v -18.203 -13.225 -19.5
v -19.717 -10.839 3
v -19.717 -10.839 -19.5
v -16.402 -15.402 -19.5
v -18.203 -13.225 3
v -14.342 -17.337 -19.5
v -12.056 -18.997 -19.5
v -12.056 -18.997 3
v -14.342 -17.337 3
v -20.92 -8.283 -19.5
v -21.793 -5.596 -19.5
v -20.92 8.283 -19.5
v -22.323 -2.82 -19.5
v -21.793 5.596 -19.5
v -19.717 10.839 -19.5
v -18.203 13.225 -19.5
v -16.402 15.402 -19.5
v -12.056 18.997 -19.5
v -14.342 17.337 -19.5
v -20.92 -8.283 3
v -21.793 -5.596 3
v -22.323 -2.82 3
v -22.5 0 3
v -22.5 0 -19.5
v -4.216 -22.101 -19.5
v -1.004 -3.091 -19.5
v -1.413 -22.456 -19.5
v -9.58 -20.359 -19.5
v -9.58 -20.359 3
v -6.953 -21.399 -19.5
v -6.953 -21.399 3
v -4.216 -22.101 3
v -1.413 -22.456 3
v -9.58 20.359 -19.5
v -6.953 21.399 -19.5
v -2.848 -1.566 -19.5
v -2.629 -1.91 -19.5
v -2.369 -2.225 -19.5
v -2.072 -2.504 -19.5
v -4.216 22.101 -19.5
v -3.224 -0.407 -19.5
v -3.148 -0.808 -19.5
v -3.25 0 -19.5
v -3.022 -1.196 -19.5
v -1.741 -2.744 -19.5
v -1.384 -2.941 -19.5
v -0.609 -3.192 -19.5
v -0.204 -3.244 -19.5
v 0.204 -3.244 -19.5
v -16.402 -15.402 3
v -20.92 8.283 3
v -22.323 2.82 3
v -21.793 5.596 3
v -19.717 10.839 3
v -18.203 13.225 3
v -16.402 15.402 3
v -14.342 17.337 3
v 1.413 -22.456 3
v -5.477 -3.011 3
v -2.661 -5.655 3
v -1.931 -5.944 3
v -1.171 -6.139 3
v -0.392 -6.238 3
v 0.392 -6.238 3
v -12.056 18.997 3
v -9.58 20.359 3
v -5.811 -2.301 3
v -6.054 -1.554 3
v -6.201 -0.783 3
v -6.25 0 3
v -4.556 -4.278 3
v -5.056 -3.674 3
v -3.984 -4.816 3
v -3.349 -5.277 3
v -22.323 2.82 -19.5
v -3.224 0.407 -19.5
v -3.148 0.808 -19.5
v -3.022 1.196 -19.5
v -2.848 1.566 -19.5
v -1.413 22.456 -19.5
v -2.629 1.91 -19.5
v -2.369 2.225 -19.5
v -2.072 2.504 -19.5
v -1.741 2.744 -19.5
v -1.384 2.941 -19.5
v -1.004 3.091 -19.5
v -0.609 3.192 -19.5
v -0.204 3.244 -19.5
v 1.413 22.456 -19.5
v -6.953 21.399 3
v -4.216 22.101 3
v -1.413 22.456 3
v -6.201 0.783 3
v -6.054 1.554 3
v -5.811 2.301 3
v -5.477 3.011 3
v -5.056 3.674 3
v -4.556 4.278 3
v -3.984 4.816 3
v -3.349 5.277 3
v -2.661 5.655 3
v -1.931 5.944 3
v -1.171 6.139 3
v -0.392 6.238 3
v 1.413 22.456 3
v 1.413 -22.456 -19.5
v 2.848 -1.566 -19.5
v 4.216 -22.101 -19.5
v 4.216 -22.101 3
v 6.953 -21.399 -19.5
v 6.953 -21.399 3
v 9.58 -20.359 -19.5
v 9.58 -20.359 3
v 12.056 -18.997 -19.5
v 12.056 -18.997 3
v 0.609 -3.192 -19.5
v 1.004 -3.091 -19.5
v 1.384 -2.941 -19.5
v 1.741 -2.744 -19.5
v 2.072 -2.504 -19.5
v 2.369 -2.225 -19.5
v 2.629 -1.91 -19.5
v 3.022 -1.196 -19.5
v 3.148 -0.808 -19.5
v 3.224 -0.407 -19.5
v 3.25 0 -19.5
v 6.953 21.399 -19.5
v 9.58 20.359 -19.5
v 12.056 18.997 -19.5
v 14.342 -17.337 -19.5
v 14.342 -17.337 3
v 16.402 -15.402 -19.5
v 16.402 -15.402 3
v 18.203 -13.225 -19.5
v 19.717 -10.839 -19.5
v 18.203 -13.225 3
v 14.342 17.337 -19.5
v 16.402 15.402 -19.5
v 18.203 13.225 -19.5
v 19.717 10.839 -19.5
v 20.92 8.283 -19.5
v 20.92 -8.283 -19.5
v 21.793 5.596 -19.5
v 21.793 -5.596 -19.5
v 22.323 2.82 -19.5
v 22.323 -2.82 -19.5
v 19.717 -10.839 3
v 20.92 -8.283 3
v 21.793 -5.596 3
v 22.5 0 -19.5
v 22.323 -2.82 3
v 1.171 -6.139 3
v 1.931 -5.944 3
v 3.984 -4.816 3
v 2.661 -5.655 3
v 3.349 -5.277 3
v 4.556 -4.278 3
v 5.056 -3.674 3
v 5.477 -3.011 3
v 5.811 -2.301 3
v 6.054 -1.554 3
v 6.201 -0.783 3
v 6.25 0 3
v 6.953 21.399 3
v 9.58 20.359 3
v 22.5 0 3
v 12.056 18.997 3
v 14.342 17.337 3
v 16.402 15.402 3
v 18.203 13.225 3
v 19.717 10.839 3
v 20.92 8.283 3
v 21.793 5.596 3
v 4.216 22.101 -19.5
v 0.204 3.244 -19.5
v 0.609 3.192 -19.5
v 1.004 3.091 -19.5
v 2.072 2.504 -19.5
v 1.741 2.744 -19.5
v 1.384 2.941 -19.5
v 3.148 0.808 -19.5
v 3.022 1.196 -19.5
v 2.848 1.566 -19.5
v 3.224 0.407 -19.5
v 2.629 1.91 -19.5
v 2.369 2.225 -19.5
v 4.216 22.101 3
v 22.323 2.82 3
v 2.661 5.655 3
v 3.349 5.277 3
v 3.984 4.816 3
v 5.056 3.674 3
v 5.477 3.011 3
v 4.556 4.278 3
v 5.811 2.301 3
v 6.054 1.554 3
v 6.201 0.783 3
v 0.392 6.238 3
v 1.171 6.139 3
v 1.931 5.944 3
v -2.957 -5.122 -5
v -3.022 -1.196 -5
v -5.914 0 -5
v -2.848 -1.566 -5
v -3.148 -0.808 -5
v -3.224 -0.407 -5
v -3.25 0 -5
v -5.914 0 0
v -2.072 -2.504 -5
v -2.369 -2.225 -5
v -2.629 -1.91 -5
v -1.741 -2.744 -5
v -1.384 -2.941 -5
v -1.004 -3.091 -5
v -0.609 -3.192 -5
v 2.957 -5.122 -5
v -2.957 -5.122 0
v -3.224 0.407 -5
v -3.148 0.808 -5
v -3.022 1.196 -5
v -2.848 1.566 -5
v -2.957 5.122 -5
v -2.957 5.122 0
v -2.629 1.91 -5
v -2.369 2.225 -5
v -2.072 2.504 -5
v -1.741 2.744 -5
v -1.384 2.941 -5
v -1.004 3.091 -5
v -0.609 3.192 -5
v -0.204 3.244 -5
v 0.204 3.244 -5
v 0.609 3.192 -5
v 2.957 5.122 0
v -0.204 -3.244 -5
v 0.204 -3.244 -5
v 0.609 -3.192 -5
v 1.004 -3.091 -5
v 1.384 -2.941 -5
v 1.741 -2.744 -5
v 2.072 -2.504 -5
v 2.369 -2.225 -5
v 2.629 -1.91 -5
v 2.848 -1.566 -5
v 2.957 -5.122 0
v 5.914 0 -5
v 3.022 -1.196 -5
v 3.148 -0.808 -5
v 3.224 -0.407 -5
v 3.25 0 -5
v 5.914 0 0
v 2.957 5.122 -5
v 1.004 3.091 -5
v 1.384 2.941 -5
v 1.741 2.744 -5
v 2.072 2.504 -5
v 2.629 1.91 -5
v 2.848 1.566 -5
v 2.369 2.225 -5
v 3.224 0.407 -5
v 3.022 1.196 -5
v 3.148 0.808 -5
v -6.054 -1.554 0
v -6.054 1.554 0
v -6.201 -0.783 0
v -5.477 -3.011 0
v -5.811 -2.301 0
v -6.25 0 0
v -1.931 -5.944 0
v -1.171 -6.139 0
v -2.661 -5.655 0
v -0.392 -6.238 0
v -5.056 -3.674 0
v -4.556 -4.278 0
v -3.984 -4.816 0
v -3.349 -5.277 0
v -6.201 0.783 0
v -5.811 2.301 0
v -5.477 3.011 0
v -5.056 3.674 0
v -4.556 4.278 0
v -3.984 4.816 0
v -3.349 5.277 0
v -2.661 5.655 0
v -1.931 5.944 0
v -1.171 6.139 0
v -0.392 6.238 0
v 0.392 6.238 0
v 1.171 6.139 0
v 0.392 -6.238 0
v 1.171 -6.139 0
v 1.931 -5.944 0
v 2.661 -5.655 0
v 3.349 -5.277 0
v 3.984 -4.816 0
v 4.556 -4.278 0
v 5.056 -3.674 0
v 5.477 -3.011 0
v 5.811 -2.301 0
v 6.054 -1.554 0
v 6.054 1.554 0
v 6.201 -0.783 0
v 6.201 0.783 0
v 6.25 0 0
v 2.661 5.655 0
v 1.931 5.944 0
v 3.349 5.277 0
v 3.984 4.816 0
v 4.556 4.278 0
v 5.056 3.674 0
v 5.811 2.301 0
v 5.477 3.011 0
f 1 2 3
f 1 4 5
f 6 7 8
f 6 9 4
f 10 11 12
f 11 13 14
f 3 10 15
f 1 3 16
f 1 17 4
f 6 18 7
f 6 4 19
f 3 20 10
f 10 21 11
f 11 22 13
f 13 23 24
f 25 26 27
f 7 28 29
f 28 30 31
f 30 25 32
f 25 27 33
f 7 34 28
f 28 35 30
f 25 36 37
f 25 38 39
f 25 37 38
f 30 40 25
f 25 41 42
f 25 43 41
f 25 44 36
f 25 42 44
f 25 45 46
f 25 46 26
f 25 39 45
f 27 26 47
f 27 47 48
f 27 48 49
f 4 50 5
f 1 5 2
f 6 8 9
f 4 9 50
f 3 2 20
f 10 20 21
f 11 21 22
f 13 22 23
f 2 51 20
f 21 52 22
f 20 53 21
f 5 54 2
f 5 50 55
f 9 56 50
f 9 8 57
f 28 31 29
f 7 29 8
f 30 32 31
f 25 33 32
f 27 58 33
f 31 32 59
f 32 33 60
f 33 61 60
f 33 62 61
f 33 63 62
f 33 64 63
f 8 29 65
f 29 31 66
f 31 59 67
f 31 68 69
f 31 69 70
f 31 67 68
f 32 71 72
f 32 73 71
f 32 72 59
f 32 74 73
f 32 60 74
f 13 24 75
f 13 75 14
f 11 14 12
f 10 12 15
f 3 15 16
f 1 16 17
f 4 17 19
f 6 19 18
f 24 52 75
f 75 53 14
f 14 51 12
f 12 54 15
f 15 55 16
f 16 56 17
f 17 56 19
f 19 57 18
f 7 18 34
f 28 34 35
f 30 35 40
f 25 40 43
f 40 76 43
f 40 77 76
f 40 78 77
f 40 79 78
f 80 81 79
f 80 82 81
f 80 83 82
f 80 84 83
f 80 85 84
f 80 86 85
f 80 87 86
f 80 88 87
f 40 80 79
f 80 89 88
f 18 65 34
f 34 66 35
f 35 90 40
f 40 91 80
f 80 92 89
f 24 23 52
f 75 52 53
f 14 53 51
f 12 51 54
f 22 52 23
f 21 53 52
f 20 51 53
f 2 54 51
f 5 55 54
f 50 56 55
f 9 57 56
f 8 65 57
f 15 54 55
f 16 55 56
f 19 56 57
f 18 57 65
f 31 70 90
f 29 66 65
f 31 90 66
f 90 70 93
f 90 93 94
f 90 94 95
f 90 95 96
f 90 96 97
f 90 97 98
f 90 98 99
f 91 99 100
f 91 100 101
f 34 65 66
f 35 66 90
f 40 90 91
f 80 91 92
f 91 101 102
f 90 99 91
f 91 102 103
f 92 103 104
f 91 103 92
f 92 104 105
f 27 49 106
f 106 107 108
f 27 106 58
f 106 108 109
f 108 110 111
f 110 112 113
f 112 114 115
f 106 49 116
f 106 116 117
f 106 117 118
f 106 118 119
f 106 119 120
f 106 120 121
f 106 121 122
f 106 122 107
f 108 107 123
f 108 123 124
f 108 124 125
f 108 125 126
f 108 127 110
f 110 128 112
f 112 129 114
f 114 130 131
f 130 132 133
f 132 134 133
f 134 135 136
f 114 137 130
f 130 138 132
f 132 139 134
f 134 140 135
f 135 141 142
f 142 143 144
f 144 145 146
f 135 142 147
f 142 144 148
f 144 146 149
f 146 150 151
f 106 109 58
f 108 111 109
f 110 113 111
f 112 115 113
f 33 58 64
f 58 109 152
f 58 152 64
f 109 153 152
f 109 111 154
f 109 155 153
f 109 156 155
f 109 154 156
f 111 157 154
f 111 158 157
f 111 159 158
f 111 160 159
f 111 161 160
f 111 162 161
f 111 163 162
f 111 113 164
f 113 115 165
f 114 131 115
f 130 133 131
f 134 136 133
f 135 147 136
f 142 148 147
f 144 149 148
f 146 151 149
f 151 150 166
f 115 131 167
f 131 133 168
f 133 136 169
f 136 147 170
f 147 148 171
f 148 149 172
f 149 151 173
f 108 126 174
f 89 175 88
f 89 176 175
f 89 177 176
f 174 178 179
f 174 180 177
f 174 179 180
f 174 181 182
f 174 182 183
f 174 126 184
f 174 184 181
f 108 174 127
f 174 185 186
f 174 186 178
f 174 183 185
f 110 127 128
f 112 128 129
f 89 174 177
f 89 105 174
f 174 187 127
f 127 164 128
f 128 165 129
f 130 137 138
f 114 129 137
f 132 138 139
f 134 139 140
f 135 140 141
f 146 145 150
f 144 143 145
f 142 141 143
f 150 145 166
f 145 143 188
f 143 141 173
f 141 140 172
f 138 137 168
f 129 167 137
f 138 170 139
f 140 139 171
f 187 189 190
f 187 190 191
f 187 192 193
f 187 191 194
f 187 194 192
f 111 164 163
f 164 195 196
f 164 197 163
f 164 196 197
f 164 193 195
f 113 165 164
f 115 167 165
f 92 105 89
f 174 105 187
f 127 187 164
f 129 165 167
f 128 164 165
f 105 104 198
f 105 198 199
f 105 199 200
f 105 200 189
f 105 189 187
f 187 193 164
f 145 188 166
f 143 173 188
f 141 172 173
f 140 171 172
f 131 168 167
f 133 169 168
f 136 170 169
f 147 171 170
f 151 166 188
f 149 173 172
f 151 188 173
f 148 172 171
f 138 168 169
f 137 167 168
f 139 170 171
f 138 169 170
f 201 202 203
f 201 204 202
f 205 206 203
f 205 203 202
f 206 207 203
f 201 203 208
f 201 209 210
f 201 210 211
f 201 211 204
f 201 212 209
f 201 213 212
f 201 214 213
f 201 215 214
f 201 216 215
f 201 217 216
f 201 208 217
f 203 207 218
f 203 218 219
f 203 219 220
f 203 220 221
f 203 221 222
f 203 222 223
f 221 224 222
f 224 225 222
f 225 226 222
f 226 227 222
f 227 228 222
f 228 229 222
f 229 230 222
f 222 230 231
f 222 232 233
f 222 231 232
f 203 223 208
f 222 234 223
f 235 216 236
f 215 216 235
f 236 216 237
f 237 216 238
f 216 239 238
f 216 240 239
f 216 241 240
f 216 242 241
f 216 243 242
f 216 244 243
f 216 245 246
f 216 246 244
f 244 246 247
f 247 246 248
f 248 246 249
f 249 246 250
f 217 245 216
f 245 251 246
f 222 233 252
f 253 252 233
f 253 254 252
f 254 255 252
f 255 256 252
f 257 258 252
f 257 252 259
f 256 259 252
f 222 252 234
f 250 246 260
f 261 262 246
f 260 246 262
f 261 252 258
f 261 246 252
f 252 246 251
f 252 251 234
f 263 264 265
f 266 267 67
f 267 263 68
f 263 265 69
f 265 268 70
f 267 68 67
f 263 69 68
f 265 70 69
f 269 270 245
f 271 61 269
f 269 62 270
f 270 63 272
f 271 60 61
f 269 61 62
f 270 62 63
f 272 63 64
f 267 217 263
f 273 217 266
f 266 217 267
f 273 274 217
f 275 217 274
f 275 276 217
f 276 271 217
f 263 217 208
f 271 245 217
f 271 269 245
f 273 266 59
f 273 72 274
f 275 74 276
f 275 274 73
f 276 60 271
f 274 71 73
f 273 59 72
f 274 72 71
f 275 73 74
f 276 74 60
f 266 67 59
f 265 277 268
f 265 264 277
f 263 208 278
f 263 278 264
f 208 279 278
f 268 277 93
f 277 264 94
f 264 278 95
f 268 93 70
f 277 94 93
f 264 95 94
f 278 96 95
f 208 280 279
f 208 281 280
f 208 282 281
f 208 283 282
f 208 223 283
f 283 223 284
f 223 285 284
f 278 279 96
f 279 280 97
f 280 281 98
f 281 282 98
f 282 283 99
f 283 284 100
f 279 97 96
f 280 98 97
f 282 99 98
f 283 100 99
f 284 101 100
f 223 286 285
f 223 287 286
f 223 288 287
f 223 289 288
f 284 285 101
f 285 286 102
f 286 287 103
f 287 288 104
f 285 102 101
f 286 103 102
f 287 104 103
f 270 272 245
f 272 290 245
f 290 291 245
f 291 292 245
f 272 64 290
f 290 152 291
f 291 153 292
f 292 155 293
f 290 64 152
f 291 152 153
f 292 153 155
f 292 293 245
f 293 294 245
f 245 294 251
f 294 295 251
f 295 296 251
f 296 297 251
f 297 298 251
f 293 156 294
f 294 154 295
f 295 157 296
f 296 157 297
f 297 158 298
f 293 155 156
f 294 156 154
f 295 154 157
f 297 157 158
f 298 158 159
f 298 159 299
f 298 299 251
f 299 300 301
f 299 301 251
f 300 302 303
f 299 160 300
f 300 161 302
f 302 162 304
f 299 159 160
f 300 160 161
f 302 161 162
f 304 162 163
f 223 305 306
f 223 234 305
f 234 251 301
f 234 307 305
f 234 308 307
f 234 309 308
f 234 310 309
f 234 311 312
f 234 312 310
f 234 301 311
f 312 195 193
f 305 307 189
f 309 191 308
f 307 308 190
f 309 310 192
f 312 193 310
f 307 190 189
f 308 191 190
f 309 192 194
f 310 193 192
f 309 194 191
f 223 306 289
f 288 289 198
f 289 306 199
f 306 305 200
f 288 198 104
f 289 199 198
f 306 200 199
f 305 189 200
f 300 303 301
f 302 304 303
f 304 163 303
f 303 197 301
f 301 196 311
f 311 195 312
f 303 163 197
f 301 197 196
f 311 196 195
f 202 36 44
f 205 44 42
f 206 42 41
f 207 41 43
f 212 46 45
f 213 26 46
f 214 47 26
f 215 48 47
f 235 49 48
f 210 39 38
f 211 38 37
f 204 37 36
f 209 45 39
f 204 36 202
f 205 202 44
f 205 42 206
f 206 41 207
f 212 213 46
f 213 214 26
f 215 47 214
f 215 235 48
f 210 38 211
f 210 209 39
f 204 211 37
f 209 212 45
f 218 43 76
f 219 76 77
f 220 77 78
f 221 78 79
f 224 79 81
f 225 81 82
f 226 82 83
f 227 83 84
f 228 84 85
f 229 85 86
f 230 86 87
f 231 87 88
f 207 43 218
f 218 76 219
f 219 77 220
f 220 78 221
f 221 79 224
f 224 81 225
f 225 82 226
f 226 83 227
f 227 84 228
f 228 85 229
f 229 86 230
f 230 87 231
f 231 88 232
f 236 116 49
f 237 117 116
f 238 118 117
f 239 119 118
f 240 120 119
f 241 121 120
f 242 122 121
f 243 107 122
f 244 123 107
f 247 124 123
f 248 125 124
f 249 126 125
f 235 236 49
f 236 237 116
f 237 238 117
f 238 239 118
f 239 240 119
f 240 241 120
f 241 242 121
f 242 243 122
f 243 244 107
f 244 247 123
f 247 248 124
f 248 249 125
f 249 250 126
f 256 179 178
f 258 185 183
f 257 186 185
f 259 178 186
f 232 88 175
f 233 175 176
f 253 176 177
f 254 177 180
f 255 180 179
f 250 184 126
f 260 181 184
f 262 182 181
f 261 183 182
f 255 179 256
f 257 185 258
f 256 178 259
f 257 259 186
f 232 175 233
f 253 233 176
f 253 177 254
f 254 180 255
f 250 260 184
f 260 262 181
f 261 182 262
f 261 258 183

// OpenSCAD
$fn = 50;

difference() {
	union() {
		translate(v = [0, 0, -19.5]) {
			cylinder(h = 22.5, r = 22.5);
		}
		#translate(v = [0, 0, -21.0]) {
			cylinder(h = 21, r = 2.875);
		}
	}
	union() {
		translate(v = [0, 0, 0]) {
			rotate(a = [0, 0, 0]) {
				difference() {
					union() {
						translate(v = [0, 0, -5]) {
							linear_extrude(height = 5) {
								polygon(points = [[5.914249999999999, 0.0], [2.957125, 5.1218907443321156], [-2.9571249999999982, 5.1218907443321156], [-5.914249999999999, 7.242867331857232e-16], [-2.9571250000000022, -5.121890744332115], [2.9571249999999956, -5.121890744332118]]);
							}
						}
					}
					union();
				}
			}
		}
		#cylinder(h = 3, r = 6.25);
		#translate(v = [0, 0, -100.0]) {
			cylinder(h = 200, r = 3.25);
		}
	}
}
